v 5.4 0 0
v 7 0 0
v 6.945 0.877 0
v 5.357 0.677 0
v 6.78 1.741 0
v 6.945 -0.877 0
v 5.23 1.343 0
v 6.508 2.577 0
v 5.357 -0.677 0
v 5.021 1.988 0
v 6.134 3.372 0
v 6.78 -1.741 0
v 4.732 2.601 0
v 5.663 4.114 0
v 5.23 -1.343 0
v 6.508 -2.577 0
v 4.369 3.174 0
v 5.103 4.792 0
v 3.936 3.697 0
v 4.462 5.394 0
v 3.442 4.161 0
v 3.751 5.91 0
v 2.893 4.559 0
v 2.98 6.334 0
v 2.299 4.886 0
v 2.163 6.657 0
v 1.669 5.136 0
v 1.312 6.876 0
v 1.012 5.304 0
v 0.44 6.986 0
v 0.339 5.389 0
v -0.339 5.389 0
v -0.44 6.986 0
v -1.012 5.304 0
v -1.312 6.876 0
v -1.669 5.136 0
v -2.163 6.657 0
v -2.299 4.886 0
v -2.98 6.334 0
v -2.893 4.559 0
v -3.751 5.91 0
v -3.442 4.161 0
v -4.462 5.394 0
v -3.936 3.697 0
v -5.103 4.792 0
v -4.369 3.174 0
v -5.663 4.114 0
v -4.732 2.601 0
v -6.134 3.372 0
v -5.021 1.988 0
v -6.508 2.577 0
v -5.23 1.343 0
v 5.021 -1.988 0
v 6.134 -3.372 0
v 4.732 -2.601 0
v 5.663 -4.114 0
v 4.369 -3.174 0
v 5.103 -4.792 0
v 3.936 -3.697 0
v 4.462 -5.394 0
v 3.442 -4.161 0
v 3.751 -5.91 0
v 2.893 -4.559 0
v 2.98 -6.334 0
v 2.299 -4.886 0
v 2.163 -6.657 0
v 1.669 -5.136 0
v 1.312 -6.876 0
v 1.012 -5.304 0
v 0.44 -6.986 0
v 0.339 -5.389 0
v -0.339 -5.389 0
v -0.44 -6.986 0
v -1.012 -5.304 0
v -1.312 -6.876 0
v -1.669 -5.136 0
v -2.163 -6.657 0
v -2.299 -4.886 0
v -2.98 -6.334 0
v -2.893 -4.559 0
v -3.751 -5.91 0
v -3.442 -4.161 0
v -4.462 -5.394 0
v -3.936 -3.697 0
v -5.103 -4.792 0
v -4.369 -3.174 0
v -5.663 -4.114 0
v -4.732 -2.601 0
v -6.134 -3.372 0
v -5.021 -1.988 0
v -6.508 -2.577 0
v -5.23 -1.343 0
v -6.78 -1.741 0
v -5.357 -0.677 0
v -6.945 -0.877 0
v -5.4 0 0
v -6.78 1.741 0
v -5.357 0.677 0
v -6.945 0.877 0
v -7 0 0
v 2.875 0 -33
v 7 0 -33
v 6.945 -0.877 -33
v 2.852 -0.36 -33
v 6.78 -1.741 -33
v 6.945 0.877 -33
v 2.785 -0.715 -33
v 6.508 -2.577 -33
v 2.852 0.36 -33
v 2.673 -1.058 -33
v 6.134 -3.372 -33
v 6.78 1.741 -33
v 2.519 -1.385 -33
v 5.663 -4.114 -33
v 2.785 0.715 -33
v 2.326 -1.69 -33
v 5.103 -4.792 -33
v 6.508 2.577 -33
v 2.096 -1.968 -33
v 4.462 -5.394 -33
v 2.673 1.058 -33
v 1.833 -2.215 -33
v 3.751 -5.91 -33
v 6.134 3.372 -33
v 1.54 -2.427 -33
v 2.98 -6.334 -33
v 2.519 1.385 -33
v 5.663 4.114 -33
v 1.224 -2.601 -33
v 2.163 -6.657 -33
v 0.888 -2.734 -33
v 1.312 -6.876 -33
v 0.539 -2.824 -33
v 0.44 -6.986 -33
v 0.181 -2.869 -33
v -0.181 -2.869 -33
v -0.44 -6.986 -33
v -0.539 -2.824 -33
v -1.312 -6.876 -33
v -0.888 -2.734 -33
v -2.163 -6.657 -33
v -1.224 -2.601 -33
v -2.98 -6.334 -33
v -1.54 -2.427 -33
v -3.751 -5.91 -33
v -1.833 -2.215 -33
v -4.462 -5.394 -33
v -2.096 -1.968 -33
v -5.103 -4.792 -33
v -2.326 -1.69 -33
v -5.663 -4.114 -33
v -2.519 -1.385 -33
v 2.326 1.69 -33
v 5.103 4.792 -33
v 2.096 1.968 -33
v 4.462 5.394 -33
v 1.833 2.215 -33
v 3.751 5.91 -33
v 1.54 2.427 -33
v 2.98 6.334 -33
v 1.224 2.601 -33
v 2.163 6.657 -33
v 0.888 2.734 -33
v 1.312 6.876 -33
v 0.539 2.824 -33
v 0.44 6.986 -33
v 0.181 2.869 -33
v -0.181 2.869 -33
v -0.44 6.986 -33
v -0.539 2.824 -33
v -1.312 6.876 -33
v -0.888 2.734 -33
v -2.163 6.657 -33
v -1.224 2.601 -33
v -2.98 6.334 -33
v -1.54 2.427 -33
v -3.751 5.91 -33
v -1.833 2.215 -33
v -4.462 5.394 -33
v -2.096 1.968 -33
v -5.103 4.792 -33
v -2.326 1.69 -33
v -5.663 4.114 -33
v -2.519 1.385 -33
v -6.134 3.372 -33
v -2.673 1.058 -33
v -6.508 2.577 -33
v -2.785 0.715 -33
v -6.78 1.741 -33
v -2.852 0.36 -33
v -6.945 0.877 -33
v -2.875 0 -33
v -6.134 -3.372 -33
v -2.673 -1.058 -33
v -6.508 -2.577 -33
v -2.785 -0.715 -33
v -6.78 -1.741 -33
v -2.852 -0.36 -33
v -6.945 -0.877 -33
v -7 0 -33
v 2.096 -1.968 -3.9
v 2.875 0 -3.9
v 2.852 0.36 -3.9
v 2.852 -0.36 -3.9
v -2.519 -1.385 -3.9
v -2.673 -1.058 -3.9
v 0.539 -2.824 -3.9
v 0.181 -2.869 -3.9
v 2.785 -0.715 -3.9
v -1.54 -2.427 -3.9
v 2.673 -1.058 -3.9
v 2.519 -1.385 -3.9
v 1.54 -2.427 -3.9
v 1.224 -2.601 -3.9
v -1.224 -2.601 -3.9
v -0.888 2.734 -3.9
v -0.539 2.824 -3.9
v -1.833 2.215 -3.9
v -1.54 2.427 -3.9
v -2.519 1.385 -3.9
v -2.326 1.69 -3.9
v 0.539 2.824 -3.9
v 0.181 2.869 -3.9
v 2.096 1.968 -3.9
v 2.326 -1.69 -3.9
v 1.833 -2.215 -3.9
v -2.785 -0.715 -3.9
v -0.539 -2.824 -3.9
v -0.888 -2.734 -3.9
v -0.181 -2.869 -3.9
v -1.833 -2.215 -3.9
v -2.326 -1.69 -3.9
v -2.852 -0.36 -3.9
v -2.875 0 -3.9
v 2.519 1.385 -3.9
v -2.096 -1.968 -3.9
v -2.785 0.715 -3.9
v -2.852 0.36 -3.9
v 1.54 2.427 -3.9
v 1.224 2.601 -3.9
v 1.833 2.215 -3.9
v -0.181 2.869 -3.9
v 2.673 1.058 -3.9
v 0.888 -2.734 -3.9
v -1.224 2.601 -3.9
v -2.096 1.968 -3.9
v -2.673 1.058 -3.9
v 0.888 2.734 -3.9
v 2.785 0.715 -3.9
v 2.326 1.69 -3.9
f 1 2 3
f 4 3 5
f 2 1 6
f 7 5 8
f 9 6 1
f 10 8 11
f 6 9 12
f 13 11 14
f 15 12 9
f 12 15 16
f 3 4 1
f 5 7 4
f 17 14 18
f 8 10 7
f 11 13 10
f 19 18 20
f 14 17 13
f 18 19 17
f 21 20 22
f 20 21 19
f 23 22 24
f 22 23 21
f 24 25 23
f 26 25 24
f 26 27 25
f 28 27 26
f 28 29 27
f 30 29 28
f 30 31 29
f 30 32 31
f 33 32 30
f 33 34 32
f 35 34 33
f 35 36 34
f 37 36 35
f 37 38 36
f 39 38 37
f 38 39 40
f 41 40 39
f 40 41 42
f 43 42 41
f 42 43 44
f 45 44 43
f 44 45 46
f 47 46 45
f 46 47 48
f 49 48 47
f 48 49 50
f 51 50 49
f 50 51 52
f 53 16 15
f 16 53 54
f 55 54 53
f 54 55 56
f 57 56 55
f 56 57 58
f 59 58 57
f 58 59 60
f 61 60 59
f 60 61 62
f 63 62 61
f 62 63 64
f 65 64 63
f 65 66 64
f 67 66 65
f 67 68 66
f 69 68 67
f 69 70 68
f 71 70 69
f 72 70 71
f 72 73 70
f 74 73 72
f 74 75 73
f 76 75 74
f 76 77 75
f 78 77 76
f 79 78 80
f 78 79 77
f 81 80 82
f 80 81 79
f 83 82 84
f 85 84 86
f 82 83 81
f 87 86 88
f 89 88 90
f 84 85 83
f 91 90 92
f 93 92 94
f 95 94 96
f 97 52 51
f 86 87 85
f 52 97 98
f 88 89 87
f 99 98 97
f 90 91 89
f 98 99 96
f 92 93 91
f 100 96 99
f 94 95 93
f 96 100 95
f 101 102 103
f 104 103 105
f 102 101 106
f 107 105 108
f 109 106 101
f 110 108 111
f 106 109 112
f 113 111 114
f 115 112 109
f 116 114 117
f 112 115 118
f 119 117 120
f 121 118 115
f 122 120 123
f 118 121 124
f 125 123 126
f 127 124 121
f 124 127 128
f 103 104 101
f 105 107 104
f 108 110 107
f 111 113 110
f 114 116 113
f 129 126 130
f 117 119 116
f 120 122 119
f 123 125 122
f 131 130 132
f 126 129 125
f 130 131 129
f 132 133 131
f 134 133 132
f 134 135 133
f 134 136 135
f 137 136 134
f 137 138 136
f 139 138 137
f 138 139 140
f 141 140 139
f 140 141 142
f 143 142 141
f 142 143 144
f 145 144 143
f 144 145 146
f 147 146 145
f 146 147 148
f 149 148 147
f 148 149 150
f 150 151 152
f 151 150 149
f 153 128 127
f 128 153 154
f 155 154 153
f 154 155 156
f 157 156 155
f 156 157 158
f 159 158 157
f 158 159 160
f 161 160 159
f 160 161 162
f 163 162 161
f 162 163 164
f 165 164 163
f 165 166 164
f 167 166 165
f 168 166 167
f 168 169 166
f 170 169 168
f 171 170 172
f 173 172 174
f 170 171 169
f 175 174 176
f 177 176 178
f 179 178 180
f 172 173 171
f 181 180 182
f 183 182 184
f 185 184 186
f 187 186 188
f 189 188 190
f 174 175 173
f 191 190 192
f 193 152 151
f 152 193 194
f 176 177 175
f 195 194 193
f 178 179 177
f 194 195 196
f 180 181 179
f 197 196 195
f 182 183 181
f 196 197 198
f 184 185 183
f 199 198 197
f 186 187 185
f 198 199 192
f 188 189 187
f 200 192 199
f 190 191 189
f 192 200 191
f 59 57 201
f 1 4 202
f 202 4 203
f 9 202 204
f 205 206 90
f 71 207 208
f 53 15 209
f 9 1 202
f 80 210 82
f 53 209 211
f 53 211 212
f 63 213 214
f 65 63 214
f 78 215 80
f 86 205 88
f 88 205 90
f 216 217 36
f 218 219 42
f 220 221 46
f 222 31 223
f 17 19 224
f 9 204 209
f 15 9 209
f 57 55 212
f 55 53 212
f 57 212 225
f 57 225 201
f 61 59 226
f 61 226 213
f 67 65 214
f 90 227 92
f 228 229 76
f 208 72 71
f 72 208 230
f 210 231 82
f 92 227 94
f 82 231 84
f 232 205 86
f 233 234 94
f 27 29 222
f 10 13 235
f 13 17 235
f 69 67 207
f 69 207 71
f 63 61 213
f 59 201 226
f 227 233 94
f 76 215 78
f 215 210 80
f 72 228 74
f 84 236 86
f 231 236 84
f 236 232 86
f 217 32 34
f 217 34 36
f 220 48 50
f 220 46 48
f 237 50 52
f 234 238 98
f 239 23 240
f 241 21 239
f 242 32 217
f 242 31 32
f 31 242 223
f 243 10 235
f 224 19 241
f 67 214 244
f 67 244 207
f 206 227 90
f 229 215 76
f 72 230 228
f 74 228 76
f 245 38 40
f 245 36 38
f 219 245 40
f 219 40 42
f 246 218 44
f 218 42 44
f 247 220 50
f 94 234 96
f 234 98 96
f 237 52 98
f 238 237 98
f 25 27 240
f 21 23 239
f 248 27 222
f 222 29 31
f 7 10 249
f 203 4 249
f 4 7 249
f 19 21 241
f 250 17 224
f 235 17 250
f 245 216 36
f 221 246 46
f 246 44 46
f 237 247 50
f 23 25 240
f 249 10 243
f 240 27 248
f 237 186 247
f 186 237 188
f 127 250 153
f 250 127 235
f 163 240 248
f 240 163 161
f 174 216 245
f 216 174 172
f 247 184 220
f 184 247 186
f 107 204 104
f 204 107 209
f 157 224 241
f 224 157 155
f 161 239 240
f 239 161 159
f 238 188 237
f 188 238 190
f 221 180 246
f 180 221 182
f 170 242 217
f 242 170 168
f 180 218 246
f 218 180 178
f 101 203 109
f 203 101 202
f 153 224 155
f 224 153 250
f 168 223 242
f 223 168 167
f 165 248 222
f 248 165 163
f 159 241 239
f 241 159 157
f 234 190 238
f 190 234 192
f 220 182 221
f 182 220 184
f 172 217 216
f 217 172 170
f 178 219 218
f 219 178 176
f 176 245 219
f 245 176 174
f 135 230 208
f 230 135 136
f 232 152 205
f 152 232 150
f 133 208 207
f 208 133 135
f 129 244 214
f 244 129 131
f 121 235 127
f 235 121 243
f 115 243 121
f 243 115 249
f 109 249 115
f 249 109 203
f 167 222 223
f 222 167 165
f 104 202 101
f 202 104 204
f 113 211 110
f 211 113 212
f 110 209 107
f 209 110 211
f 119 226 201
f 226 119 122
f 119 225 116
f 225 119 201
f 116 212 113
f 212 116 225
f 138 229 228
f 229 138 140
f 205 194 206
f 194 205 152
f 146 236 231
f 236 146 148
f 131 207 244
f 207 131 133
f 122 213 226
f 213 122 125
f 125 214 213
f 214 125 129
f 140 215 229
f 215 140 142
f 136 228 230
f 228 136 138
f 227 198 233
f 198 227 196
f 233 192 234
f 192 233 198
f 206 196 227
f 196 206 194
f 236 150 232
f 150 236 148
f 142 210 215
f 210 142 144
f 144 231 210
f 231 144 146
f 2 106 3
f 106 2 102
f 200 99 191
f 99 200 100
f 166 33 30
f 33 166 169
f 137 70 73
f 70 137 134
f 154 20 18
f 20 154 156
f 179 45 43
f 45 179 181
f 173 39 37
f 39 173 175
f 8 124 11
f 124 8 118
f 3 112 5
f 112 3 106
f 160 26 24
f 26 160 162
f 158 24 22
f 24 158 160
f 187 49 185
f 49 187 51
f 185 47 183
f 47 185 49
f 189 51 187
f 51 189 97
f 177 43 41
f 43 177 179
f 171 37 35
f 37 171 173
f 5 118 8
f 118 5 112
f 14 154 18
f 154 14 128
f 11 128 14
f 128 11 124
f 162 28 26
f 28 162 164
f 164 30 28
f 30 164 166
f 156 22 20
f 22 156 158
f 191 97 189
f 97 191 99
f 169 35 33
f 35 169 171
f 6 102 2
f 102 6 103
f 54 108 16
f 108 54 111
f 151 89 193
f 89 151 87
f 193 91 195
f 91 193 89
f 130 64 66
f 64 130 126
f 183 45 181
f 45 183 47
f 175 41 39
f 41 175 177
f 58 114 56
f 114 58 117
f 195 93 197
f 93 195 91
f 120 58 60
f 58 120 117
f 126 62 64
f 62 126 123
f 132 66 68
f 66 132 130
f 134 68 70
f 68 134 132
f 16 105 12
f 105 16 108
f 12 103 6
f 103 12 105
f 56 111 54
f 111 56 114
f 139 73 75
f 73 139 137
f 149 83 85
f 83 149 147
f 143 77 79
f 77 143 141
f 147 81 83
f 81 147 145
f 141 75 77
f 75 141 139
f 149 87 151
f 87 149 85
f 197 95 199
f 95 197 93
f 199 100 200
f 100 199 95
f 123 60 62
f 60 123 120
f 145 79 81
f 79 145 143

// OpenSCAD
$fn = 50;


difference() {
	union() {
		translate(v = [0, 0, -33.0000000000]) {
			cylinder(h = 33, r = 7.0000000000);
		}
		cylinder(h = 0, r = 16.0000000000);
	}
	union() {
		translate(v = [0, 0, 0]) {
			rotate(a = [0, 0, 0]) {
				difference() {
					union() {
						#translate(v = [0, 0, -33.0000000000]) {
							cylinder(h = 33, r = 2.6000000000);
						}
						#translate(v = [0, 0, -3.9000000000]) {
							cylinder(h = 3.9000000000, r = 7.0000000000, r1 = 2.8750000000, r2 = 5.4000000000);
						}
						#translate(v = [0, 0, -33.0000000000]) {
							cylinder(h = 33, r = 2.8750000000);
						}
						#translate(v = [0, 0, -33.0000000000]) {
							cylinder(h = 33, r = 2.6000000000);
						}
					}
					union();
				}
			}
		}
	}
}
